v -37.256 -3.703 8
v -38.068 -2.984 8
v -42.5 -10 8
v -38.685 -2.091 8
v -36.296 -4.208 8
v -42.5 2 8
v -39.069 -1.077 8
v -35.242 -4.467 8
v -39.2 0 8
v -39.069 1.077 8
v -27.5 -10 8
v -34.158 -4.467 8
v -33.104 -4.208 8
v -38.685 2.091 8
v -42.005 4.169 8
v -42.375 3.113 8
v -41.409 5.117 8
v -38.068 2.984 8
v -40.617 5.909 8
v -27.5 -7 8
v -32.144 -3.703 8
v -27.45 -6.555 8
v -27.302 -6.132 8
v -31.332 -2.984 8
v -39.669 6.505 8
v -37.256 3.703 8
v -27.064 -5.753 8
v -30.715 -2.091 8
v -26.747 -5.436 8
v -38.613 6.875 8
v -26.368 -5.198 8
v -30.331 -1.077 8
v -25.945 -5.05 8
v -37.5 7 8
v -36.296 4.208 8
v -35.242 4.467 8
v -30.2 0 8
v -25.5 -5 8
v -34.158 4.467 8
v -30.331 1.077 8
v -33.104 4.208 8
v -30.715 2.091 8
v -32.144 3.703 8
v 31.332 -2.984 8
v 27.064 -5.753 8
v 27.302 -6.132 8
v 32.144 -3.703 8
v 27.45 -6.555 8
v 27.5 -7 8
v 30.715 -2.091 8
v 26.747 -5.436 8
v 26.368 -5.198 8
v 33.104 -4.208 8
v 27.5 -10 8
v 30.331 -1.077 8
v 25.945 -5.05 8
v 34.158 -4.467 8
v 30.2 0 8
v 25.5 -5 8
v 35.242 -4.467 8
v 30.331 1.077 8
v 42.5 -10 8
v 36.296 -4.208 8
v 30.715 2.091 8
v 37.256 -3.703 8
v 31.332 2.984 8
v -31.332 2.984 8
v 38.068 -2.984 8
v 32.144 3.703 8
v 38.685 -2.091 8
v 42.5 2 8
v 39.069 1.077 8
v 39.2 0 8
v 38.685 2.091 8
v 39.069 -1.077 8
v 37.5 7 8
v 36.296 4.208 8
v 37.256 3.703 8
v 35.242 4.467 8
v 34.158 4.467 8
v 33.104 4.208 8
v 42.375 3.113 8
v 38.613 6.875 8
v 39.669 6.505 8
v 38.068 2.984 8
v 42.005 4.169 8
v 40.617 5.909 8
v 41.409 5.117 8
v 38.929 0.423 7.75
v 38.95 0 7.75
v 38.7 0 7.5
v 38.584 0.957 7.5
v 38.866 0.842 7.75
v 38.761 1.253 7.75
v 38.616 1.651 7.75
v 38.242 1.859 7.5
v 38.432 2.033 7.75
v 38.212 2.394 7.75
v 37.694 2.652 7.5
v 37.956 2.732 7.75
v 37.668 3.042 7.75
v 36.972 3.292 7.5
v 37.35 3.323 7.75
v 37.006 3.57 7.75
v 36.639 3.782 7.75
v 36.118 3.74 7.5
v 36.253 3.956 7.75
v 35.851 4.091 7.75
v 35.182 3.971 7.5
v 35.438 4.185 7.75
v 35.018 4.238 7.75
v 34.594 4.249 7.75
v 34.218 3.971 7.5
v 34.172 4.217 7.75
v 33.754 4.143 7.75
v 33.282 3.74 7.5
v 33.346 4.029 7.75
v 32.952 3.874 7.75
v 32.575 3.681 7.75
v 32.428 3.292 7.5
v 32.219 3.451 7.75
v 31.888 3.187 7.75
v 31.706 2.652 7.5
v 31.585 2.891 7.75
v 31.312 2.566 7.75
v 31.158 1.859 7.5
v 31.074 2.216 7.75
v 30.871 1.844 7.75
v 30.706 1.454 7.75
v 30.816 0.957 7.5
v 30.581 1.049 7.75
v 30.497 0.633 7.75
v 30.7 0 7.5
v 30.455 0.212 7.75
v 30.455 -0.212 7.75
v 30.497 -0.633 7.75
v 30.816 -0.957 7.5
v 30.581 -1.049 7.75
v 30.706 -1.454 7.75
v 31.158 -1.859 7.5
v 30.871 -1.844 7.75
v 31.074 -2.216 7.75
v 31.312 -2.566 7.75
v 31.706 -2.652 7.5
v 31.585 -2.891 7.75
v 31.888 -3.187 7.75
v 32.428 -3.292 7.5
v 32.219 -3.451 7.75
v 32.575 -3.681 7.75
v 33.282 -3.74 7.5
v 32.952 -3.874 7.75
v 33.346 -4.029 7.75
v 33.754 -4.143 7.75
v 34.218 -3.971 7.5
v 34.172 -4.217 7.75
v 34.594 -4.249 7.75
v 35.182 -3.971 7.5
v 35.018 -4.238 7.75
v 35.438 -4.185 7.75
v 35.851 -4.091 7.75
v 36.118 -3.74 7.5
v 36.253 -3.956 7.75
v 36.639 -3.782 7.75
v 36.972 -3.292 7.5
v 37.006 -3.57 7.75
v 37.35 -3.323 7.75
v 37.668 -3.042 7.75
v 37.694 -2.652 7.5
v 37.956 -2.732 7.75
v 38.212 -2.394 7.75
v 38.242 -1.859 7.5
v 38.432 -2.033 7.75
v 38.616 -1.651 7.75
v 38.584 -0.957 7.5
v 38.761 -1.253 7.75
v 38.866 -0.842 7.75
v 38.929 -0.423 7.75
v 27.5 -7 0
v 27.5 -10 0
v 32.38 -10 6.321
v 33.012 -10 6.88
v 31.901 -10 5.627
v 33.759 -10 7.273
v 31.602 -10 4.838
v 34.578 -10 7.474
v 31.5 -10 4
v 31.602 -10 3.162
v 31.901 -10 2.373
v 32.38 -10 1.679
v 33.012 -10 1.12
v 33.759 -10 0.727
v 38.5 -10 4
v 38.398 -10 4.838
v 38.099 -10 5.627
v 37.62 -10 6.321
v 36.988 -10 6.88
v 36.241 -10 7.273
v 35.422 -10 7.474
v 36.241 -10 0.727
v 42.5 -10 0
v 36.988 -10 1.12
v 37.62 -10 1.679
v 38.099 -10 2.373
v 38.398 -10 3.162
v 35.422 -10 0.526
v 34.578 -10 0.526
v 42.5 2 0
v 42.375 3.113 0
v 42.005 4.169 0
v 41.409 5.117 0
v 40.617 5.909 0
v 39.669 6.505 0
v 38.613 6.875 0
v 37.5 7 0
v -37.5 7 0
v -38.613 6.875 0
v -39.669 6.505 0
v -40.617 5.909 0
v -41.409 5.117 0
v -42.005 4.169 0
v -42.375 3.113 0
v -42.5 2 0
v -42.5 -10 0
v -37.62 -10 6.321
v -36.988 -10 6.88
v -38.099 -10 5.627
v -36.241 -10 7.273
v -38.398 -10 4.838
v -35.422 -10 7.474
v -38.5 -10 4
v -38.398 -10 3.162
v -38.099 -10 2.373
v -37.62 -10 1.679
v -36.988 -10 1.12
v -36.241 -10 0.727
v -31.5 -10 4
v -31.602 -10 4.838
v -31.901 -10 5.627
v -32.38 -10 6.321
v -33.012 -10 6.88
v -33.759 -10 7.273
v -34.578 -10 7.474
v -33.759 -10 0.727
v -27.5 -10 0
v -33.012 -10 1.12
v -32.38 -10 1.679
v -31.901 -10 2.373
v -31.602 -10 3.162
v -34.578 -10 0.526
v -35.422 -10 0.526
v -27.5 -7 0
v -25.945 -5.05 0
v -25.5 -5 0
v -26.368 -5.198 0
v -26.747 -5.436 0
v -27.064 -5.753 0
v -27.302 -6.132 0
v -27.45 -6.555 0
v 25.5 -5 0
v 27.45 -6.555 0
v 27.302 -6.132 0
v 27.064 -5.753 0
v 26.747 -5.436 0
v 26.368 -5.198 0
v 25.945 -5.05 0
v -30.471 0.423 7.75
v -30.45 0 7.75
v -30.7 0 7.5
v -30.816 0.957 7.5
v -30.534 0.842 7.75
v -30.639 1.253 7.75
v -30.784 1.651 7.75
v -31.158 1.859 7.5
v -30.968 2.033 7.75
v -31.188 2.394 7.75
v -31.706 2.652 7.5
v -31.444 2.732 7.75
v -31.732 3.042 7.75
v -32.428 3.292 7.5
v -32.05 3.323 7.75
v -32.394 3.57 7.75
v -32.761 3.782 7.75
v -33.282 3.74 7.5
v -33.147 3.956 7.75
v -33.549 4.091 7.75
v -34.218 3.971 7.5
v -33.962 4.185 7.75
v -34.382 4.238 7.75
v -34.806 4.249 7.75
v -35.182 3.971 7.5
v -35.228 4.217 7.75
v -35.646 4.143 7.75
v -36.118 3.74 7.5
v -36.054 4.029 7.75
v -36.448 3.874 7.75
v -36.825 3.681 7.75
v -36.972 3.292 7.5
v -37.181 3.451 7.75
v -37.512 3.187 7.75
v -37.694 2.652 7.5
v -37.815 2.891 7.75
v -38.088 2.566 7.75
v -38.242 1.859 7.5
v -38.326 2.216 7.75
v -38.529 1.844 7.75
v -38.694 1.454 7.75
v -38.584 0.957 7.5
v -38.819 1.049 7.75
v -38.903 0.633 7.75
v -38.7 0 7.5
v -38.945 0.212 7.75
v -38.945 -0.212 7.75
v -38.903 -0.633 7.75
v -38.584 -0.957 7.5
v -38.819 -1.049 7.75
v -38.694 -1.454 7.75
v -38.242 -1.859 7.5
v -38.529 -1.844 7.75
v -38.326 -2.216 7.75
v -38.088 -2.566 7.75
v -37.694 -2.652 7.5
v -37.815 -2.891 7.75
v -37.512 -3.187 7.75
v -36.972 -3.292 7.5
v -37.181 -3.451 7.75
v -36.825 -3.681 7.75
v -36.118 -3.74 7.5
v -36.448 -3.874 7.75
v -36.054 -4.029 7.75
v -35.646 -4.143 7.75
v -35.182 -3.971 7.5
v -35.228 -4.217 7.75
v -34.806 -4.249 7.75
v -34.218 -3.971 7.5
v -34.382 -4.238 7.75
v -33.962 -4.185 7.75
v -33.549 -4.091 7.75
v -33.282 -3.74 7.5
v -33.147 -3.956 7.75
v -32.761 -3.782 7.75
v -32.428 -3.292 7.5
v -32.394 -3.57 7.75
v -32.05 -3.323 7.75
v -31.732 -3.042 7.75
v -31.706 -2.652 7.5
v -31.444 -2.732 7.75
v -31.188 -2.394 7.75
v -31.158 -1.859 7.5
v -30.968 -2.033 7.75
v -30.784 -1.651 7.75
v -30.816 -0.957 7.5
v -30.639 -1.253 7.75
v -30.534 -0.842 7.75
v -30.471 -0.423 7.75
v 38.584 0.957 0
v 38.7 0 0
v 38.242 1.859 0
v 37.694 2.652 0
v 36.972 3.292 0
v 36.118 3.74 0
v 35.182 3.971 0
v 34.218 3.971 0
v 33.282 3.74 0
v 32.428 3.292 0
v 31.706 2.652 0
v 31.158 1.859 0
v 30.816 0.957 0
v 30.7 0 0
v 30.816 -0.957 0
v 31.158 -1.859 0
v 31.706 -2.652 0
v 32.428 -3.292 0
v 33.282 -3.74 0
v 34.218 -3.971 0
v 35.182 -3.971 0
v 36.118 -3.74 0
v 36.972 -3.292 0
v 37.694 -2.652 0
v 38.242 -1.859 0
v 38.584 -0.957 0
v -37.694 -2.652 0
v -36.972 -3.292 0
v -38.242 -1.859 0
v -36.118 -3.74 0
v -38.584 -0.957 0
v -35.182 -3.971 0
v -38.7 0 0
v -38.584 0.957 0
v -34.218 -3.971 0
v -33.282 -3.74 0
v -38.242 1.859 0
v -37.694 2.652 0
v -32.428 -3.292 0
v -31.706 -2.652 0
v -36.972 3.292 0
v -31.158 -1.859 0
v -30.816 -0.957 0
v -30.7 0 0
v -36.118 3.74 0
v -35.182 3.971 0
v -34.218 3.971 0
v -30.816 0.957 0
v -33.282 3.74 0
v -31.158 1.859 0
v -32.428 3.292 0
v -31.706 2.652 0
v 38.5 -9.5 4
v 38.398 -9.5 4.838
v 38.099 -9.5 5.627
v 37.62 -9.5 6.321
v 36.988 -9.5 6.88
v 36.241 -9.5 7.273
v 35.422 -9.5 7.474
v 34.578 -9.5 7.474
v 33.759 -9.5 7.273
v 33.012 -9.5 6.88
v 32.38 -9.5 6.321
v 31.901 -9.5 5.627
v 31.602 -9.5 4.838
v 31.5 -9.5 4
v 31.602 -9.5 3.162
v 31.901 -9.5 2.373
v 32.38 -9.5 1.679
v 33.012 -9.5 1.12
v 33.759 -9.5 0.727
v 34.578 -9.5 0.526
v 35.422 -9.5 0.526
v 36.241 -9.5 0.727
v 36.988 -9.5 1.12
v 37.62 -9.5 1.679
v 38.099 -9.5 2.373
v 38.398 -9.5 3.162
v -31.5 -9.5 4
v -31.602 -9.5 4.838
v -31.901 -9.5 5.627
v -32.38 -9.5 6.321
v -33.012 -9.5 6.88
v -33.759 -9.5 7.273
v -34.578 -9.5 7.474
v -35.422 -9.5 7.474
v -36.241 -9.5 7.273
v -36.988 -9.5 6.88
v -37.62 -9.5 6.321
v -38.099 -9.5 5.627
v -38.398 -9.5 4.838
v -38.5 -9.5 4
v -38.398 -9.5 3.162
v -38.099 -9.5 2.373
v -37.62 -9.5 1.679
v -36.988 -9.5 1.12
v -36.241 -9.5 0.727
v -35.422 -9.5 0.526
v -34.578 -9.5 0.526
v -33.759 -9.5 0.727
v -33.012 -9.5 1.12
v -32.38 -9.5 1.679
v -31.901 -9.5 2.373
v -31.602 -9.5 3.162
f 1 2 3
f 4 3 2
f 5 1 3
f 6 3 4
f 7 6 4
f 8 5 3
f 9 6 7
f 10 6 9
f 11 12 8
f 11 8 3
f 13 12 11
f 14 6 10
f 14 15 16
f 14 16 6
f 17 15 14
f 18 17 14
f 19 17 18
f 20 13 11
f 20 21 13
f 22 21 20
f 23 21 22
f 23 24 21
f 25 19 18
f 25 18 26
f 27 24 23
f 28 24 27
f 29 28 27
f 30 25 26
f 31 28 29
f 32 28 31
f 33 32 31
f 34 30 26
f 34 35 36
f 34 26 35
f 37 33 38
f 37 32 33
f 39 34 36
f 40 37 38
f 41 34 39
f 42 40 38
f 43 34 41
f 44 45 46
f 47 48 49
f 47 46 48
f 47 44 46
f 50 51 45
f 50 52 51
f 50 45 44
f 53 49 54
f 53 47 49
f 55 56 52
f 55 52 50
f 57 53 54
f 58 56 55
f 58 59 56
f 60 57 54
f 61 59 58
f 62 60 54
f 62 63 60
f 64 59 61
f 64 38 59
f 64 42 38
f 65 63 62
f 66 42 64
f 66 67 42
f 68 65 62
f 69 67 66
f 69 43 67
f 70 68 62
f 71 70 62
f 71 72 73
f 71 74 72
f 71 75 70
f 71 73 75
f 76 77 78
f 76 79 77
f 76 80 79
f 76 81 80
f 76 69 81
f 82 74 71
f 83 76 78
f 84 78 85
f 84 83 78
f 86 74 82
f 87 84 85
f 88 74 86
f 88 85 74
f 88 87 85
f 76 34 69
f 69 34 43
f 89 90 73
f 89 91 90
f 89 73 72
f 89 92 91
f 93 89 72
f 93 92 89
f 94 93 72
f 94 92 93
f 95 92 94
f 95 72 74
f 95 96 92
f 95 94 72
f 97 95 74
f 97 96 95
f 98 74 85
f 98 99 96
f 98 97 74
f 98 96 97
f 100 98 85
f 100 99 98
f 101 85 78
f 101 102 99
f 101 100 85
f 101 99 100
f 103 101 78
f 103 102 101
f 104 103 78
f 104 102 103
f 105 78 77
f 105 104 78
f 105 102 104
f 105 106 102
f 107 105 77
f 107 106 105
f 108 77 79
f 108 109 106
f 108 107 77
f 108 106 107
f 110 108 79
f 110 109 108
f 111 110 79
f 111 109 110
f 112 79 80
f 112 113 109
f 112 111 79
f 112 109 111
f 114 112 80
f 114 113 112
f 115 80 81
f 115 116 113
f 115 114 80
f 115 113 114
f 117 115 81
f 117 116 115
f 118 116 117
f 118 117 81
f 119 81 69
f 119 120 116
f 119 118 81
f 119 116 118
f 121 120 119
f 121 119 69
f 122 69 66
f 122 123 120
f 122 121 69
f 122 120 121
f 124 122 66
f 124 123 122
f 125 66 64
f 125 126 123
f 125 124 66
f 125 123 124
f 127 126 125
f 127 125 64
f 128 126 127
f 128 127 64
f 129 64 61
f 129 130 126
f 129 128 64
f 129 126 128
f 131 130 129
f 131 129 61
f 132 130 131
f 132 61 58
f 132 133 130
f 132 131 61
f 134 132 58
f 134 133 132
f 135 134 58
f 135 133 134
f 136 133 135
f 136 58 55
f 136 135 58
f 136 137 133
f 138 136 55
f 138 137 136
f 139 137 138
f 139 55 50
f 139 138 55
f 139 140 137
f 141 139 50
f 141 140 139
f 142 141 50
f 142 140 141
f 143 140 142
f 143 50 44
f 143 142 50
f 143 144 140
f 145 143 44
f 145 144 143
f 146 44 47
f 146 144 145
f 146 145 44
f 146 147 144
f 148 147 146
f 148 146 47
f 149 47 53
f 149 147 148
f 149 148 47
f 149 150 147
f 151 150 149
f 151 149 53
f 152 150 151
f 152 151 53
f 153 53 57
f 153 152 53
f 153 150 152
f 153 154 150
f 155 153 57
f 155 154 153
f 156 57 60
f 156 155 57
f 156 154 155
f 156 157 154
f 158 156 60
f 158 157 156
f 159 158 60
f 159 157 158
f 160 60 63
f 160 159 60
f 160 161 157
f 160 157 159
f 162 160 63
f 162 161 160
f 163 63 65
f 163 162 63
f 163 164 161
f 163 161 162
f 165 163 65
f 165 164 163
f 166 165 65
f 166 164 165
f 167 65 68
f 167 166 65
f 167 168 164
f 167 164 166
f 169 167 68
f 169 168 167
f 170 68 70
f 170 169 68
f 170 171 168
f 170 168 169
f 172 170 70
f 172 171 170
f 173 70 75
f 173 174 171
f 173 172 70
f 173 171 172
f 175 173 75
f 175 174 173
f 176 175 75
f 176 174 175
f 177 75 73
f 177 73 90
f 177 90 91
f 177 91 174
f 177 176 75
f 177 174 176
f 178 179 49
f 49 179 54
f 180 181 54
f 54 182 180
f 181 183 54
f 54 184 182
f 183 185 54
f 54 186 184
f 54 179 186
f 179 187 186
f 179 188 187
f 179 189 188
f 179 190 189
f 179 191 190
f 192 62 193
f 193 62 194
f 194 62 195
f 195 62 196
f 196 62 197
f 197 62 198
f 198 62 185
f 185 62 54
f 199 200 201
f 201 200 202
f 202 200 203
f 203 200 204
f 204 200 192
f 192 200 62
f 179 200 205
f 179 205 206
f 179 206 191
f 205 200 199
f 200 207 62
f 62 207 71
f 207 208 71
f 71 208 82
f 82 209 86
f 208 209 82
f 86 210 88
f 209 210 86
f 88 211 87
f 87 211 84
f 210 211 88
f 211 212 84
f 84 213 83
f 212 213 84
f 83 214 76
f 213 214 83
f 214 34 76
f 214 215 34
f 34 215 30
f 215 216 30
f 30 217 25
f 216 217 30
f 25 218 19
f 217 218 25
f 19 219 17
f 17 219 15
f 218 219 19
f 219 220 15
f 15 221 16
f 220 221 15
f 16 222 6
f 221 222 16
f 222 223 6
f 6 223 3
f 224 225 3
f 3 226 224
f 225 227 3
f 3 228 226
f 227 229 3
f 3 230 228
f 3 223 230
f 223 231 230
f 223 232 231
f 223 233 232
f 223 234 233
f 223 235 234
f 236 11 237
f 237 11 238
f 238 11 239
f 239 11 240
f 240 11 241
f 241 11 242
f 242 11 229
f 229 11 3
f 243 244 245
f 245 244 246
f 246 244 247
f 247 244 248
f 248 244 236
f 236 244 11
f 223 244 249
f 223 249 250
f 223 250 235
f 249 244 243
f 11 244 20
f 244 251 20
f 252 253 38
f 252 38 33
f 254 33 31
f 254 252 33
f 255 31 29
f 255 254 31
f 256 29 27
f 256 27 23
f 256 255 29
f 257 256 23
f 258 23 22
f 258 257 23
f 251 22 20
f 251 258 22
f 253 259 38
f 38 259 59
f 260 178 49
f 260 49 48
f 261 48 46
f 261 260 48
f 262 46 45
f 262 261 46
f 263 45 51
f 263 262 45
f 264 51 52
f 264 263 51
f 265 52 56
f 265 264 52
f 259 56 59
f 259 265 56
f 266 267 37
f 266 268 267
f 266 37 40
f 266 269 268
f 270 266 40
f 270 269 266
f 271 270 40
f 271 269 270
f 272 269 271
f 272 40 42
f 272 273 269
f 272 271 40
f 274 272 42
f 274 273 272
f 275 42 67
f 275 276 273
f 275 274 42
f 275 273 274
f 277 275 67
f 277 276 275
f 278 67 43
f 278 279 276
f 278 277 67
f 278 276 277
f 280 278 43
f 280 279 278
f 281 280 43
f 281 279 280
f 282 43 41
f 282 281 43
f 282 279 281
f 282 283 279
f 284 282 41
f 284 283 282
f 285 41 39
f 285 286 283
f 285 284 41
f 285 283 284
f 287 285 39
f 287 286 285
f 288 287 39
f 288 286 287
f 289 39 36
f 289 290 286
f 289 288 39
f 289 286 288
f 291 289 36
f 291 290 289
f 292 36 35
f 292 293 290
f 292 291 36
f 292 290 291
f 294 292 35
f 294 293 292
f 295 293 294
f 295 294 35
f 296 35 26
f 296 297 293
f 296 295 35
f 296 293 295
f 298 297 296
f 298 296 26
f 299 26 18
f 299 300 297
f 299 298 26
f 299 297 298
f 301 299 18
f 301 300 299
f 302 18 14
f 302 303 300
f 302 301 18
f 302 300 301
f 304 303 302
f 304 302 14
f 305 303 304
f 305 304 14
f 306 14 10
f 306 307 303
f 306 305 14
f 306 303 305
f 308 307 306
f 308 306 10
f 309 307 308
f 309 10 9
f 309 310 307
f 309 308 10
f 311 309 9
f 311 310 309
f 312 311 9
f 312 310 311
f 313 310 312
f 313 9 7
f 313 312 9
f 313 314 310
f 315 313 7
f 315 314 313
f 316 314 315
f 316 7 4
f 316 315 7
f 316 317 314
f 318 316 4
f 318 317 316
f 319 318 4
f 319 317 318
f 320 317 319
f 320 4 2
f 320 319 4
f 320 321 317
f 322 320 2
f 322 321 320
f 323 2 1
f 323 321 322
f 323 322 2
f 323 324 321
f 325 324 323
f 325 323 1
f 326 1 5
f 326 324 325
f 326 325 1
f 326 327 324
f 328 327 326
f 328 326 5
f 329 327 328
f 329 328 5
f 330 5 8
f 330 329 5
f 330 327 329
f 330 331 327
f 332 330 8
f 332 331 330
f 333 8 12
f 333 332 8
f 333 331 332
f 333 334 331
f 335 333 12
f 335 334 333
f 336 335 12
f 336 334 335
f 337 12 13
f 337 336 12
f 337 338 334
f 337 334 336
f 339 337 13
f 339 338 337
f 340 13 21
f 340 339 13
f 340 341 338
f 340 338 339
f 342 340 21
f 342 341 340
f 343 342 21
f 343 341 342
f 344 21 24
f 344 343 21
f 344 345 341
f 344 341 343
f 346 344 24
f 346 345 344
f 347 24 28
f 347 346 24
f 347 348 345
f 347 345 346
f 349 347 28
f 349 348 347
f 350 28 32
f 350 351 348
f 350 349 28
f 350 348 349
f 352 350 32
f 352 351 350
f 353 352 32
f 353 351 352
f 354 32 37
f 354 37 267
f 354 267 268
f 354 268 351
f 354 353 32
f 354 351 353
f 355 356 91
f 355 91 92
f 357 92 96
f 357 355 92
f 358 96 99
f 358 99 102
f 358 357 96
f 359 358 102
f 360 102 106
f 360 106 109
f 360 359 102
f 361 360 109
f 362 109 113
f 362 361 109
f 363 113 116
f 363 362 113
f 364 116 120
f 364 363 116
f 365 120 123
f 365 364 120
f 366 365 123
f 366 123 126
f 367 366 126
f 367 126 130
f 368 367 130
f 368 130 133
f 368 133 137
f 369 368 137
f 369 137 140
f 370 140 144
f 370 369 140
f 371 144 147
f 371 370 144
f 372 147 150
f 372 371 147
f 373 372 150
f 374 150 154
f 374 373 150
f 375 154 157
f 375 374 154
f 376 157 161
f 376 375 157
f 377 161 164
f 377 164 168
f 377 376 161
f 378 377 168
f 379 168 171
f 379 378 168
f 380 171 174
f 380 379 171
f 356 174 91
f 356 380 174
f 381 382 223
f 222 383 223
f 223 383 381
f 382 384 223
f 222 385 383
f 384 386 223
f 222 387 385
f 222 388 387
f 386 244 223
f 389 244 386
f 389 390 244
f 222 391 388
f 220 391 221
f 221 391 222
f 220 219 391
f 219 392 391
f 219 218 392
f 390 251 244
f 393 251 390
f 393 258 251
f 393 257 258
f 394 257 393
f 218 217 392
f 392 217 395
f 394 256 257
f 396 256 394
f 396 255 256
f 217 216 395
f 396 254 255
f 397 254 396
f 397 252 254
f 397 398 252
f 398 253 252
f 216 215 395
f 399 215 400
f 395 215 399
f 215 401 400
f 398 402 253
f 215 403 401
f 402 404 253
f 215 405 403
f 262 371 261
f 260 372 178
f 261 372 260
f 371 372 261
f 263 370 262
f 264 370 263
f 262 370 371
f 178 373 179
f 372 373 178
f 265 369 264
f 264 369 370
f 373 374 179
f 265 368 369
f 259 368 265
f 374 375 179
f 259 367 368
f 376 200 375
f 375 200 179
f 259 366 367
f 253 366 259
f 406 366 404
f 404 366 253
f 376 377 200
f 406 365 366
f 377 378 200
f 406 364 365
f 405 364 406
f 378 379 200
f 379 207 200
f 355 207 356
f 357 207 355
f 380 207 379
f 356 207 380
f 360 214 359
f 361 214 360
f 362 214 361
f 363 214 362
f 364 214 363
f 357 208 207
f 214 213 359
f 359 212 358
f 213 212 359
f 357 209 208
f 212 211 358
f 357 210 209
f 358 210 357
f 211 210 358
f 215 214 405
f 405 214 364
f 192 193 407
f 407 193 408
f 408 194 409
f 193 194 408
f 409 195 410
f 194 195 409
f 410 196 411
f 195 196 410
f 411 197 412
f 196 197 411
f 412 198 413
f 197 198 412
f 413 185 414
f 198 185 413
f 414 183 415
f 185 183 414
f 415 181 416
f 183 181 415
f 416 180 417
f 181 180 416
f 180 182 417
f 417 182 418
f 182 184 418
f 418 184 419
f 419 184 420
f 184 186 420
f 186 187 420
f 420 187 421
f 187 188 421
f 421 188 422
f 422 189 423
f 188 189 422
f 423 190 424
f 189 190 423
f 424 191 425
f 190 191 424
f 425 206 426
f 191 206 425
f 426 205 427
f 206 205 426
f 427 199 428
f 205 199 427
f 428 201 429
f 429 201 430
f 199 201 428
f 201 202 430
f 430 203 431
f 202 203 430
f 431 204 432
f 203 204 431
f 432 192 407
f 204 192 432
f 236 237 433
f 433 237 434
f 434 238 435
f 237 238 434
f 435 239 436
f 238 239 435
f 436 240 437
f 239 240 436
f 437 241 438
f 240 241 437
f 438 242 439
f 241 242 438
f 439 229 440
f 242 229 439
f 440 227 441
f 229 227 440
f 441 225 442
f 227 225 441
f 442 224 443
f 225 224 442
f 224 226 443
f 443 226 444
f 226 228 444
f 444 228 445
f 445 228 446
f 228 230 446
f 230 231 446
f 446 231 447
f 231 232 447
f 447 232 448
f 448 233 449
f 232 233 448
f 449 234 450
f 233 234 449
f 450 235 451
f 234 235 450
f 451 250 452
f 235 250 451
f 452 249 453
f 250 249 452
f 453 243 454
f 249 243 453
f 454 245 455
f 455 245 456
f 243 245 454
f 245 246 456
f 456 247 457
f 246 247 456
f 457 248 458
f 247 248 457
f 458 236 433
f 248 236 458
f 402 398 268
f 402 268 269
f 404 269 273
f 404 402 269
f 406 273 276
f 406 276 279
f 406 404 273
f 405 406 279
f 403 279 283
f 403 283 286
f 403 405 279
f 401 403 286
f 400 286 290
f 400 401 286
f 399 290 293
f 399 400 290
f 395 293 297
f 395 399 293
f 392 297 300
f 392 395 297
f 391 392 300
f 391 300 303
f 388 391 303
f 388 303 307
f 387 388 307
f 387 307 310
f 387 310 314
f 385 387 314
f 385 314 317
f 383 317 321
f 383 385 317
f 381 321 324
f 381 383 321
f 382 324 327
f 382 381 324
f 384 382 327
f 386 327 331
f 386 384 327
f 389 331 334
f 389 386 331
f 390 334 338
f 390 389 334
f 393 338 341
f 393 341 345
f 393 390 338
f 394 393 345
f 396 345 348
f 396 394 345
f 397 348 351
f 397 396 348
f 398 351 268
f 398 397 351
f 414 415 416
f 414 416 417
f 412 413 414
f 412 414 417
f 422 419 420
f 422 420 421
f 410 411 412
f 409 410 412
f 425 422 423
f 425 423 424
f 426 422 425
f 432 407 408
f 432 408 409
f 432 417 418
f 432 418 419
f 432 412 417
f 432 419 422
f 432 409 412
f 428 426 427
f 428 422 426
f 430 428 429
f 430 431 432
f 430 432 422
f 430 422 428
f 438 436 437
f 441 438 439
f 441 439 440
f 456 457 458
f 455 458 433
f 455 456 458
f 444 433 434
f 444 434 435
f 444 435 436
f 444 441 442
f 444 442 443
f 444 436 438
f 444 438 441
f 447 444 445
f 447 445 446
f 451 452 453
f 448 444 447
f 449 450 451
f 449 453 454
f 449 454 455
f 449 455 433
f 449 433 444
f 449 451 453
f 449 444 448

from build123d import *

# Parameters (mm, degrees)
SKETCH_R     = 4
PAD_DEPTH    = 8
SKETCH001_R  = 3.5
POCKET_DEPTH = 0.5
CHAMFER_SIZE = 0.5


with BuildPart() as part:
    # Sketch → Pad (new body)
    with BuildSketch(Plane.XY):
        with BuildLine():
            Line((-42.5, -10), (-27.5, -10))
            Line((-27.5, -10), (-27.5, -7))
            ThreePointArc((-25.5, -5), (-26.914214, -5.585786), (-27.5, -7))
            Line((-25.5, -5), (25.5, -5))
            ThreePointArc((27.5, -7), (26.914214, -5.585786), (25.5, -5))
            Line((27.5, -7), (27.5, -10))
            Line((27.5, -10), (42.5, -10))
            Line((42.5, -10), (42.5, 2))
            ThreePointArc((42.5, 2), (41.035534, 5.535534), (37.5, 7))
            Line((37.5, 7), (-37.5, 7))
            ThreePointArc((-37.5, 7), (-41.035534, 5.535534), (-42.5, 2))
            Line((-42.5, 2), (-42.5, -10))
        make_face()
        with Locations((-34.7, 0)):
            Circle(SKETCH_R, mode=Mode.SUBTRACT)
        with Locations((34.7, 0)):
            Circle(SKETCH_R, mode=Mode.SUBTRACT)
    extrude(amount=PAD_DEPTH)

    # Sketch001 (on Face2 of Pad) → Pocket (cut)
    with BuildSketch(Plane.XZ.offset(10)):
        with Locations((-35, 4)):
            Circle(SKETCH001_R)
        with Locations((35, 4)):
            Circle(SKETCH001_R)
    extrude(amount=-POCKET_DEPTH, mode=Mode.SUBTRACT)

    # Chamfer
    chamfer_edges = [part.edges().sort_by_distance(p)[0] for p in [
        (30.7, 0, 8),
        (-38.7, 0, 8),
    ]]
    chamfer(chamfer_edges, length=CHAMFER_SIZE)


solid = part.part
